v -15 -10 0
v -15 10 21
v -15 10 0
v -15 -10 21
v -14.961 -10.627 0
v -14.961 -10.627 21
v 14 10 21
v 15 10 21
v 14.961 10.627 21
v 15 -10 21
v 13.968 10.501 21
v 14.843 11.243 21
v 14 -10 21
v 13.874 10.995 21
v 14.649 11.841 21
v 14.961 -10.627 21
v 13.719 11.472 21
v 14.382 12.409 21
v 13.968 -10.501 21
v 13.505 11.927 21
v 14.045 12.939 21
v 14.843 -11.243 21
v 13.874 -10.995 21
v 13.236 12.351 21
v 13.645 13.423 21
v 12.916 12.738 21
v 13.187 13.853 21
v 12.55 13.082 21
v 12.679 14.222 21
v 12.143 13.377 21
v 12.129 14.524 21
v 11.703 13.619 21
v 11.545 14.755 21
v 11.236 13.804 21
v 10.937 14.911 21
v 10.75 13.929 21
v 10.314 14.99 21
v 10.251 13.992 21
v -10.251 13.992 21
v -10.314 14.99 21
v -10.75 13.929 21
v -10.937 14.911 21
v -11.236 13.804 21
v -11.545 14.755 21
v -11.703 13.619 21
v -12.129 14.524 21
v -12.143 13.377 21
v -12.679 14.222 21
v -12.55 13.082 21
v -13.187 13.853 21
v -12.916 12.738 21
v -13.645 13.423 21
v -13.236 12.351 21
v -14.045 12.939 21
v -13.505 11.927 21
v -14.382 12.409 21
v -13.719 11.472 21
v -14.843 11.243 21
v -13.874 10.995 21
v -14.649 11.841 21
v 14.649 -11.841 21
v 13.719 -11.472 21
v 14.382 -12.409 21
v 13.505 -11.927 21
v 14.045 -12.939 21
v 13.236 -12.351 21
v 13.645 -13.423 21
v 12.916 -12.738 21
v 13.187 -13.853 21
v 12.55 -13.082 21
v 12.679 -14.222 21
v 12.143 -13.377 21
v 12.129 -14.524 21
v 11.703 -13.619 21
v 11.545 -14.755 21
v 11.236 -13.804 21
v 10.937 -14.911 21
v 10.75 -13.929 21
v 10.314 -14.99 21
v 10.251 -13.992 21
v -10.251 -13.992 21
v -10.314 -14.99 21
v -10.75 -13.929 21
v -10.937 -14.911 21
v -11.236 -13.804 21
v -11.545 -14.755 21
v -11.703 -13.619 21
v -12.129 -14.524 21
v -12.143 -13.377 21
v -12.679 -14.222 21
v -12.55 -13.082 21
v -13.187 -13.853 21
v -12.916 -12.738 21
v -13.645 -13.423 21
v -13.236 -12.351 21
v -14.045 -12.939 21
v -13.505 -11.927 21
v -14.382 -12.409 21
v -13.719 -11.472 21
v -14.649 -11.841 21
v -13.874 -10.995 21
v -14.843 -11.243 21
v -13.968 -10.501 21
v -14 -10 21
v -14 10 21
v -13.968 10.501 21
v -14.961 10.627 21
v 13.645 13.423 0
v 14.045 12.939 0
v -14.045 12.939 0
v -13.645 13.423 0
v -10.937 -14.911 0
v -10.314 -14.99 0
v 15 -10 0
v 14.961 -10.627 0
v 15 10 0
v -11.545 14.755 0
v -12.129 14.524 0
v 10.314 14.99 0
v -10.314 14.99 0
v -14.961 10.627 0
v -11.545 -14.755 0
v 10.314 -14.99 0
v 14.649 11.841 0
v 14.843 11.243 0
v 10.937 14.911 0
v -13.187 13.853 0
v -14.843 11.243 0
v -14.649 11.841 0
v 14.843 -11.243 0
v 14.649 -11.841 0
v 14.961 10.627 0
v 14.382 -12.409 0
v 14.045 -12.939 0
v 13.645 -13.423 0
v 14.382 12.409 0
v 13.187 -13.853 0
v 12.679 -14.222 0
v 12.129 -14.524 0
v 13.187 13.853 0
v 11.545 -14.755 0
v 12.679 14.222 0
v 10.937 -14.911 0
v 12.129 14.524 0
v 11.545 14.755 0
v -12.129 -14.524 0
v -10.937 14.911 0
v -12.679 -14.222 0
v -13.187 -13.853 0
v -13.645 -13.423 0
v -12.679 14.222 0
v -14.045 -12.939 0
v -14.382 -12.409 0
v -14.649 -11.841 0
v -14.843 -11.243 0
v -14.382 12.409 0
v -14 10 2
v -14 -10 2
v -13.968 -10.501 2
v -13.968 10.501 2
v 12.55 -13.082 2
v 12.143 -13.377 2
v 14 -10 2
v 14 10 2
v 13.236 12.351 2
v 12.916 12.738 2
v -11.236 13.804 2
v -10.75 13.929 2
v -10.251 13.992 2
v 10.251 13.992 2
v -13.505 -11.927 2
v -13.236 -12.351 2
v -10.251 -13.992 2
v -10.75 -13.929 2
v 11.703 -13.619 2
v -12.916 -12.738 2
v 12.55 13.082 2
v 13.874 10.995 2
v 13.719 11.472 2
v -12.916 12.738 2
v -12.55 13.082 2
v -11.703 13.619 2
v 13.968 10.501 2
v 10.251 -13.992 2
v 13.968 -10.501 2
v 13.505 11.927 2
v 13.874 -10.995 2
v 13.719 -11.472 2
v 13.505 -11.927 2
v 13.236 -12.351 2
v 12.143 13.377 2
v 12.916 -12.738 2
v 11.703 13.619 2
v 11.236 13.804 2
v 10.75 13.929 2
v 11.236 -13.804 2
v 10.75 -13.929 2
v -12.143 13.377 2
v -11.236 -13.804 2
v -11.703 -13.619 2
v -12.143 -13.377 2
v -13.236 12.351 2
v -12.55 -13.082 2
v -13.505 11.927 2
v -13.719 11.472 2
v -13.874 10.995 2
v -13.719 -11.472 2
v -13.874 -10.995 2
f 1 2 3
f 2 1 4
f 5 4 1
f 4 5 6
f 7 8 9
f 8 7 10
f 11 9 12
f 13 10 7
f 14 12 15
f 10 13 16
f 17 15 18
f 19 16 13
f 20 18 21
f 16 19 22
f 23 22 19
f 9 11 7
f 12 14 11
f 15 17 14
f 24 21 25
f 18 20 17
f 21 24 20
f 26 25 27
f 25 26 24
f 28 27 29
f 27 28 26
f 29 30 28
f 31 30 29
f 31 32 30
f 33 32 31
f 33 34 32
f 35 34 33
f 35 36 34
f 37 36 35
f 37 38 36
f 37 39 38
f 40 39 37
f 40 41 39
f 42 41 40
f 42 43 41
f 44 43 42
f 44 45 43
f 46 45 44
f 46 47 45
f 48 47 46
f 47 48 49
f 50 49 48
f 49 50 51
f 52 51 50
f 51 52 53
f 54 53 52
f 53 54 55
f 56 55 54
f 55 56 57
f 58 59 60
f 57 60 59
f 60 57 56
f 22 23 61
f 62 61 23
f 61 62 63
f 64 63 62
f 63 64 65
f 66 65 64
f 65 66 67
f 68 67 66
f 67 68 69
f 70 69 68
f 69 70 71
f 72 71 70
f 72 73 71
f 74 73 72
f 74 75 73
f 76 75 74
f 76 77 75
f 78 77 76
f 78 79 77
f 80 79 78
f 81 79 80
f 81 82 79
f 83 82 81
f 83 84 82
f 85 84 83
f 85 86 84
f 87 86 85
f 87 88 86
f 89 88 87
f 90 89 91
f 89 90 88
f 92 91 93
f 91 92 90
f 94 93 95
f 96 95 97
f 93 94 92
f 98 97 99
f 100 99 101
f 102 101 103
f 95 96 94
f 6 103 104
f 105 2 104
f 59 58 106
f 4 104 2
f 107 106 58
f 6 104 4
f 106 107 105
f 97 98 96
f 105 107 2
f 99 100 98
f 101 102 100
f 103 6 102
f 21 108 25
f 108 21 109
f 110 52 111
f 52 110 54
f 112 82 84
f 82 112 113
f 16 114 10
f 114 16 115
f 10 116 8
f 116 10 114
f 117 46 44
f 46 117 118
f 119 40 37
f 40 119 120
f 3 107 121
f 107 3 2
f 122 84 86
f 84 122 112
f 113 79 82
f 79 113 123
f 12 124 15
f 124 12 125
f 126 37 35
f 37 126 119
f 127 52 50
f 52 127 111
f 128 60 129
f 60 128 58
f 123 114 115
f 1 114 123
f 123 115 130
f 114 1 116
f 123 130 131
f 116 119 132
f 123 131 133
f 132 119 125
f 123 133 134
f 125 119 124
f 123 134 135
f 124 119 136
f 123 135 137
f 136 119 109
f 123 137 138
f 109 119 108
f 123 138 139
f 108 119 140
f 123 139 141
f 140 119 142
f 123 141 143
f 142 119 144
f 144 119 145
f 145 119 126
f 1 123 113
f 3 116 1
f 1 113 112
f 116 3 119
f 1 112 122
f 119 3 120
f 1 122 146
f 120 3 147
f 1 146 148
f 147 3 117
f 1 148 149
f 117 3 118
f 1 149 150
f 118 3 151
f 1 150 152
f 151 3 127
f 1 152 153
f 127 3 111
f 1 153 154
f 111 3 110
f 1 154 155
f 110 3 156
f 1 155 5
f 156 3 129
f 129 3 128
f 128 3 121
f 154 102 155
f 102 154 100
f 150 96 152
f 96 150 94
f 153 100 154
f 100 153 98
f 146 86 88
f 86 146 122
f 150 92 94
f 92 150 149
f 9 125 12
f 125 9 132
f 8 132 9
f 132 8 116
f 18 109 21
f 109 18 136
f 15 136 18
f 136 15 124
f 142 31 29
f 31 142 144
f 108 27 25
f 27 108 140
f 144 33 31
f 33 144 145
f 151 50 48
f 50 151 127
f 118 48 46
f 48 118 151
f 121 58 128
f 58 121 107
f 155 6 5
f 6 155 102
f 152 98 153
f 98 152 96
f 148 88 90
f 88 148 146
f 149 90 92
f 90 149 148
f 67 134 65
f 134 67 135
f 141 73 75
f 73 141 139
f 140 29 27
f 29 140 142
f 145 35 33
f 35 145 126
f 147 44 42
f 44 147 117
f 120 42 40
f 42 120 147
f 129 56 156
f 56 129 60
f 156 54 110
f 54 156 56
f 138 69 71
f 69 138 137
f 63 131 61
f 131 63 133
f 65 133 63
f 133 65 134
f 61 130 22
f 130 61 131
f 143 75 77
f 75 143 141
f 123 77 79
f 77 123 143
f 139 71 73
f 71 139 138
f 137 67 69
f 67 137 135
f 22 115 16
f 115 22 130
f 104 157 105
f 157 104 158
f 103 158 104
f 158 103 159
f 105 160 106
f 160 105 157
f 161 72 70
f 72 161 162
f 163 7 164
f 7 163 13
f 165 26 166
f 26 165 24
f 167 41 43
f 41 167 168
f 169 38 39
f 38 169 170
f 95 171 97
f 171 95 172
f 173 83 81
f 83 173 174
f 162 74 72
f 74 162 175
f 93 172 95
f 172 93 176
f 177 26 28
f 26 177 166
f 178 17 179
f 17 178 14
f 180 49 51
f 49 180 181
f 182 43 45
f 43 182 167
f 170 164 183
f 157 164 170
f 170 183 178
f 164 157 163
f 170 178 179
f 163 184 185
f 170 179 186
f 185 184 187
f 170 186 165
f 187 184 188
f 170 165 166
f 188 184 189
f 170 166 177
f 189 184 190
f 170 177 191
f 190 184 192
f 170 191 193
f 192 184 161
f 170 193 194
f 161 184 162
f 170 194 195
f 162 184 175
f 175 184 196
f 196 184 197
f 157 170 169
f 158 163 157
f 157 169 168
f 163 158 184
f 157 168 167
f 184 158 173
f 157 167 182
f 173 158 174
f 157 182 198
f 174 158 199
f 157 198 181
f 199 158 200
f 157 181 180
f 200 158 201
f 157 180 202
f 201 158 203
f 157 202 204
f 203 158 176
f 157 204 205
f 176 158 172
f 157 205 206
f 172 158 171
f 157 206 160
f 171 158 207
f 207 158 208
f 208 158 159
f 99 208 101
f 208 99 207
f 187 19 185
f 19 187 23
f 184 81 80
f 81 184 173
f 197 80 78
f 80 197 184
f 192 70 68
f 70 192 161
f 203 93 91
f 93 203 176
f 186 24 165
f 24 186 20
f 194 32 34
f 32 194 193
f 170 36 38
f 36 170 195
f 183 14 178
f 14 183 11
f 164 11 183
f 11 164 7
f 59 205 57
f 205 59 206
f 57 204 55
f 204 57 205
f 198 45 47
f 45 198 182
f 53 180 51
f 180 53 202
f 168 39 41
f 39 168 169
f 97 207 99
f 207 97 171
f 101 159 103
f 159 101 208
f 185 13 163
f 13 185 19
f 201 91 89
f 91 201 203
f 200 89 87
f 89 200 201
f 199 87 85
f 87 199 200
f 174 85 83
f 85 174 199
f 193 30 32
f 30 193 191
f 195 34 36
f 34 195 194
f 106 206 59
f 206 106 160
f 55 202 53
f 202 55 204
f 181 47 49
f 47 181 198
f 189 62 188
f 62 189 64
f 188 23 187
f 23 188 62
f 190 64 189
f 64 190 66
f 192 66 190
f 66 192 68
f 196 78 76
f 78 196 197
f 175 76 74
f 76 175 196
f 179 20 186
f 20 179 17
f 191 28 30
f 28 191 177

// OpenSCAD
$fn = 50;


difference() {
	union() {
		hull() {
			translate(v = [-10.0000000000, 10.0000000000, 0]) {
				cylinder(h = 21, r = 5);
			}
			translate(v = [10.0000000000, 10.0000000000, 0]) {
				cylinder(h = 21, r = 5);
			}
			translate(v = [-10.0000000000, -10.0000000000, 0]) {
				cylinder(h = 21, r = 5);
			}
			translate(v = [10.0000000000, -10.0000000000, 0]) {
				cylinder(h = 21, r = 5);
			}
		}
	}
	union() {
		translate(v = [0, 0, 2]) {
			hull() {
				translate(v = [-10.0000000000, 10.0000000000, 0]) {
					cylinder(h = 19, r = 4);
				}
				translate(v = [10.0000000000, 10.0000000000, 0]) {
					cylinder(h = 19, r = 4);
				}
				translate(v = [-10.0000000000, -10.0000000000, 0]) {
					cylinder(h = 19, r = 4);
				}
				translate(v = [10.0000000000, -10.0000000000, 0]) {
					cylinder(h = 19, r = 4);
				}
			}
		}
	}
}
